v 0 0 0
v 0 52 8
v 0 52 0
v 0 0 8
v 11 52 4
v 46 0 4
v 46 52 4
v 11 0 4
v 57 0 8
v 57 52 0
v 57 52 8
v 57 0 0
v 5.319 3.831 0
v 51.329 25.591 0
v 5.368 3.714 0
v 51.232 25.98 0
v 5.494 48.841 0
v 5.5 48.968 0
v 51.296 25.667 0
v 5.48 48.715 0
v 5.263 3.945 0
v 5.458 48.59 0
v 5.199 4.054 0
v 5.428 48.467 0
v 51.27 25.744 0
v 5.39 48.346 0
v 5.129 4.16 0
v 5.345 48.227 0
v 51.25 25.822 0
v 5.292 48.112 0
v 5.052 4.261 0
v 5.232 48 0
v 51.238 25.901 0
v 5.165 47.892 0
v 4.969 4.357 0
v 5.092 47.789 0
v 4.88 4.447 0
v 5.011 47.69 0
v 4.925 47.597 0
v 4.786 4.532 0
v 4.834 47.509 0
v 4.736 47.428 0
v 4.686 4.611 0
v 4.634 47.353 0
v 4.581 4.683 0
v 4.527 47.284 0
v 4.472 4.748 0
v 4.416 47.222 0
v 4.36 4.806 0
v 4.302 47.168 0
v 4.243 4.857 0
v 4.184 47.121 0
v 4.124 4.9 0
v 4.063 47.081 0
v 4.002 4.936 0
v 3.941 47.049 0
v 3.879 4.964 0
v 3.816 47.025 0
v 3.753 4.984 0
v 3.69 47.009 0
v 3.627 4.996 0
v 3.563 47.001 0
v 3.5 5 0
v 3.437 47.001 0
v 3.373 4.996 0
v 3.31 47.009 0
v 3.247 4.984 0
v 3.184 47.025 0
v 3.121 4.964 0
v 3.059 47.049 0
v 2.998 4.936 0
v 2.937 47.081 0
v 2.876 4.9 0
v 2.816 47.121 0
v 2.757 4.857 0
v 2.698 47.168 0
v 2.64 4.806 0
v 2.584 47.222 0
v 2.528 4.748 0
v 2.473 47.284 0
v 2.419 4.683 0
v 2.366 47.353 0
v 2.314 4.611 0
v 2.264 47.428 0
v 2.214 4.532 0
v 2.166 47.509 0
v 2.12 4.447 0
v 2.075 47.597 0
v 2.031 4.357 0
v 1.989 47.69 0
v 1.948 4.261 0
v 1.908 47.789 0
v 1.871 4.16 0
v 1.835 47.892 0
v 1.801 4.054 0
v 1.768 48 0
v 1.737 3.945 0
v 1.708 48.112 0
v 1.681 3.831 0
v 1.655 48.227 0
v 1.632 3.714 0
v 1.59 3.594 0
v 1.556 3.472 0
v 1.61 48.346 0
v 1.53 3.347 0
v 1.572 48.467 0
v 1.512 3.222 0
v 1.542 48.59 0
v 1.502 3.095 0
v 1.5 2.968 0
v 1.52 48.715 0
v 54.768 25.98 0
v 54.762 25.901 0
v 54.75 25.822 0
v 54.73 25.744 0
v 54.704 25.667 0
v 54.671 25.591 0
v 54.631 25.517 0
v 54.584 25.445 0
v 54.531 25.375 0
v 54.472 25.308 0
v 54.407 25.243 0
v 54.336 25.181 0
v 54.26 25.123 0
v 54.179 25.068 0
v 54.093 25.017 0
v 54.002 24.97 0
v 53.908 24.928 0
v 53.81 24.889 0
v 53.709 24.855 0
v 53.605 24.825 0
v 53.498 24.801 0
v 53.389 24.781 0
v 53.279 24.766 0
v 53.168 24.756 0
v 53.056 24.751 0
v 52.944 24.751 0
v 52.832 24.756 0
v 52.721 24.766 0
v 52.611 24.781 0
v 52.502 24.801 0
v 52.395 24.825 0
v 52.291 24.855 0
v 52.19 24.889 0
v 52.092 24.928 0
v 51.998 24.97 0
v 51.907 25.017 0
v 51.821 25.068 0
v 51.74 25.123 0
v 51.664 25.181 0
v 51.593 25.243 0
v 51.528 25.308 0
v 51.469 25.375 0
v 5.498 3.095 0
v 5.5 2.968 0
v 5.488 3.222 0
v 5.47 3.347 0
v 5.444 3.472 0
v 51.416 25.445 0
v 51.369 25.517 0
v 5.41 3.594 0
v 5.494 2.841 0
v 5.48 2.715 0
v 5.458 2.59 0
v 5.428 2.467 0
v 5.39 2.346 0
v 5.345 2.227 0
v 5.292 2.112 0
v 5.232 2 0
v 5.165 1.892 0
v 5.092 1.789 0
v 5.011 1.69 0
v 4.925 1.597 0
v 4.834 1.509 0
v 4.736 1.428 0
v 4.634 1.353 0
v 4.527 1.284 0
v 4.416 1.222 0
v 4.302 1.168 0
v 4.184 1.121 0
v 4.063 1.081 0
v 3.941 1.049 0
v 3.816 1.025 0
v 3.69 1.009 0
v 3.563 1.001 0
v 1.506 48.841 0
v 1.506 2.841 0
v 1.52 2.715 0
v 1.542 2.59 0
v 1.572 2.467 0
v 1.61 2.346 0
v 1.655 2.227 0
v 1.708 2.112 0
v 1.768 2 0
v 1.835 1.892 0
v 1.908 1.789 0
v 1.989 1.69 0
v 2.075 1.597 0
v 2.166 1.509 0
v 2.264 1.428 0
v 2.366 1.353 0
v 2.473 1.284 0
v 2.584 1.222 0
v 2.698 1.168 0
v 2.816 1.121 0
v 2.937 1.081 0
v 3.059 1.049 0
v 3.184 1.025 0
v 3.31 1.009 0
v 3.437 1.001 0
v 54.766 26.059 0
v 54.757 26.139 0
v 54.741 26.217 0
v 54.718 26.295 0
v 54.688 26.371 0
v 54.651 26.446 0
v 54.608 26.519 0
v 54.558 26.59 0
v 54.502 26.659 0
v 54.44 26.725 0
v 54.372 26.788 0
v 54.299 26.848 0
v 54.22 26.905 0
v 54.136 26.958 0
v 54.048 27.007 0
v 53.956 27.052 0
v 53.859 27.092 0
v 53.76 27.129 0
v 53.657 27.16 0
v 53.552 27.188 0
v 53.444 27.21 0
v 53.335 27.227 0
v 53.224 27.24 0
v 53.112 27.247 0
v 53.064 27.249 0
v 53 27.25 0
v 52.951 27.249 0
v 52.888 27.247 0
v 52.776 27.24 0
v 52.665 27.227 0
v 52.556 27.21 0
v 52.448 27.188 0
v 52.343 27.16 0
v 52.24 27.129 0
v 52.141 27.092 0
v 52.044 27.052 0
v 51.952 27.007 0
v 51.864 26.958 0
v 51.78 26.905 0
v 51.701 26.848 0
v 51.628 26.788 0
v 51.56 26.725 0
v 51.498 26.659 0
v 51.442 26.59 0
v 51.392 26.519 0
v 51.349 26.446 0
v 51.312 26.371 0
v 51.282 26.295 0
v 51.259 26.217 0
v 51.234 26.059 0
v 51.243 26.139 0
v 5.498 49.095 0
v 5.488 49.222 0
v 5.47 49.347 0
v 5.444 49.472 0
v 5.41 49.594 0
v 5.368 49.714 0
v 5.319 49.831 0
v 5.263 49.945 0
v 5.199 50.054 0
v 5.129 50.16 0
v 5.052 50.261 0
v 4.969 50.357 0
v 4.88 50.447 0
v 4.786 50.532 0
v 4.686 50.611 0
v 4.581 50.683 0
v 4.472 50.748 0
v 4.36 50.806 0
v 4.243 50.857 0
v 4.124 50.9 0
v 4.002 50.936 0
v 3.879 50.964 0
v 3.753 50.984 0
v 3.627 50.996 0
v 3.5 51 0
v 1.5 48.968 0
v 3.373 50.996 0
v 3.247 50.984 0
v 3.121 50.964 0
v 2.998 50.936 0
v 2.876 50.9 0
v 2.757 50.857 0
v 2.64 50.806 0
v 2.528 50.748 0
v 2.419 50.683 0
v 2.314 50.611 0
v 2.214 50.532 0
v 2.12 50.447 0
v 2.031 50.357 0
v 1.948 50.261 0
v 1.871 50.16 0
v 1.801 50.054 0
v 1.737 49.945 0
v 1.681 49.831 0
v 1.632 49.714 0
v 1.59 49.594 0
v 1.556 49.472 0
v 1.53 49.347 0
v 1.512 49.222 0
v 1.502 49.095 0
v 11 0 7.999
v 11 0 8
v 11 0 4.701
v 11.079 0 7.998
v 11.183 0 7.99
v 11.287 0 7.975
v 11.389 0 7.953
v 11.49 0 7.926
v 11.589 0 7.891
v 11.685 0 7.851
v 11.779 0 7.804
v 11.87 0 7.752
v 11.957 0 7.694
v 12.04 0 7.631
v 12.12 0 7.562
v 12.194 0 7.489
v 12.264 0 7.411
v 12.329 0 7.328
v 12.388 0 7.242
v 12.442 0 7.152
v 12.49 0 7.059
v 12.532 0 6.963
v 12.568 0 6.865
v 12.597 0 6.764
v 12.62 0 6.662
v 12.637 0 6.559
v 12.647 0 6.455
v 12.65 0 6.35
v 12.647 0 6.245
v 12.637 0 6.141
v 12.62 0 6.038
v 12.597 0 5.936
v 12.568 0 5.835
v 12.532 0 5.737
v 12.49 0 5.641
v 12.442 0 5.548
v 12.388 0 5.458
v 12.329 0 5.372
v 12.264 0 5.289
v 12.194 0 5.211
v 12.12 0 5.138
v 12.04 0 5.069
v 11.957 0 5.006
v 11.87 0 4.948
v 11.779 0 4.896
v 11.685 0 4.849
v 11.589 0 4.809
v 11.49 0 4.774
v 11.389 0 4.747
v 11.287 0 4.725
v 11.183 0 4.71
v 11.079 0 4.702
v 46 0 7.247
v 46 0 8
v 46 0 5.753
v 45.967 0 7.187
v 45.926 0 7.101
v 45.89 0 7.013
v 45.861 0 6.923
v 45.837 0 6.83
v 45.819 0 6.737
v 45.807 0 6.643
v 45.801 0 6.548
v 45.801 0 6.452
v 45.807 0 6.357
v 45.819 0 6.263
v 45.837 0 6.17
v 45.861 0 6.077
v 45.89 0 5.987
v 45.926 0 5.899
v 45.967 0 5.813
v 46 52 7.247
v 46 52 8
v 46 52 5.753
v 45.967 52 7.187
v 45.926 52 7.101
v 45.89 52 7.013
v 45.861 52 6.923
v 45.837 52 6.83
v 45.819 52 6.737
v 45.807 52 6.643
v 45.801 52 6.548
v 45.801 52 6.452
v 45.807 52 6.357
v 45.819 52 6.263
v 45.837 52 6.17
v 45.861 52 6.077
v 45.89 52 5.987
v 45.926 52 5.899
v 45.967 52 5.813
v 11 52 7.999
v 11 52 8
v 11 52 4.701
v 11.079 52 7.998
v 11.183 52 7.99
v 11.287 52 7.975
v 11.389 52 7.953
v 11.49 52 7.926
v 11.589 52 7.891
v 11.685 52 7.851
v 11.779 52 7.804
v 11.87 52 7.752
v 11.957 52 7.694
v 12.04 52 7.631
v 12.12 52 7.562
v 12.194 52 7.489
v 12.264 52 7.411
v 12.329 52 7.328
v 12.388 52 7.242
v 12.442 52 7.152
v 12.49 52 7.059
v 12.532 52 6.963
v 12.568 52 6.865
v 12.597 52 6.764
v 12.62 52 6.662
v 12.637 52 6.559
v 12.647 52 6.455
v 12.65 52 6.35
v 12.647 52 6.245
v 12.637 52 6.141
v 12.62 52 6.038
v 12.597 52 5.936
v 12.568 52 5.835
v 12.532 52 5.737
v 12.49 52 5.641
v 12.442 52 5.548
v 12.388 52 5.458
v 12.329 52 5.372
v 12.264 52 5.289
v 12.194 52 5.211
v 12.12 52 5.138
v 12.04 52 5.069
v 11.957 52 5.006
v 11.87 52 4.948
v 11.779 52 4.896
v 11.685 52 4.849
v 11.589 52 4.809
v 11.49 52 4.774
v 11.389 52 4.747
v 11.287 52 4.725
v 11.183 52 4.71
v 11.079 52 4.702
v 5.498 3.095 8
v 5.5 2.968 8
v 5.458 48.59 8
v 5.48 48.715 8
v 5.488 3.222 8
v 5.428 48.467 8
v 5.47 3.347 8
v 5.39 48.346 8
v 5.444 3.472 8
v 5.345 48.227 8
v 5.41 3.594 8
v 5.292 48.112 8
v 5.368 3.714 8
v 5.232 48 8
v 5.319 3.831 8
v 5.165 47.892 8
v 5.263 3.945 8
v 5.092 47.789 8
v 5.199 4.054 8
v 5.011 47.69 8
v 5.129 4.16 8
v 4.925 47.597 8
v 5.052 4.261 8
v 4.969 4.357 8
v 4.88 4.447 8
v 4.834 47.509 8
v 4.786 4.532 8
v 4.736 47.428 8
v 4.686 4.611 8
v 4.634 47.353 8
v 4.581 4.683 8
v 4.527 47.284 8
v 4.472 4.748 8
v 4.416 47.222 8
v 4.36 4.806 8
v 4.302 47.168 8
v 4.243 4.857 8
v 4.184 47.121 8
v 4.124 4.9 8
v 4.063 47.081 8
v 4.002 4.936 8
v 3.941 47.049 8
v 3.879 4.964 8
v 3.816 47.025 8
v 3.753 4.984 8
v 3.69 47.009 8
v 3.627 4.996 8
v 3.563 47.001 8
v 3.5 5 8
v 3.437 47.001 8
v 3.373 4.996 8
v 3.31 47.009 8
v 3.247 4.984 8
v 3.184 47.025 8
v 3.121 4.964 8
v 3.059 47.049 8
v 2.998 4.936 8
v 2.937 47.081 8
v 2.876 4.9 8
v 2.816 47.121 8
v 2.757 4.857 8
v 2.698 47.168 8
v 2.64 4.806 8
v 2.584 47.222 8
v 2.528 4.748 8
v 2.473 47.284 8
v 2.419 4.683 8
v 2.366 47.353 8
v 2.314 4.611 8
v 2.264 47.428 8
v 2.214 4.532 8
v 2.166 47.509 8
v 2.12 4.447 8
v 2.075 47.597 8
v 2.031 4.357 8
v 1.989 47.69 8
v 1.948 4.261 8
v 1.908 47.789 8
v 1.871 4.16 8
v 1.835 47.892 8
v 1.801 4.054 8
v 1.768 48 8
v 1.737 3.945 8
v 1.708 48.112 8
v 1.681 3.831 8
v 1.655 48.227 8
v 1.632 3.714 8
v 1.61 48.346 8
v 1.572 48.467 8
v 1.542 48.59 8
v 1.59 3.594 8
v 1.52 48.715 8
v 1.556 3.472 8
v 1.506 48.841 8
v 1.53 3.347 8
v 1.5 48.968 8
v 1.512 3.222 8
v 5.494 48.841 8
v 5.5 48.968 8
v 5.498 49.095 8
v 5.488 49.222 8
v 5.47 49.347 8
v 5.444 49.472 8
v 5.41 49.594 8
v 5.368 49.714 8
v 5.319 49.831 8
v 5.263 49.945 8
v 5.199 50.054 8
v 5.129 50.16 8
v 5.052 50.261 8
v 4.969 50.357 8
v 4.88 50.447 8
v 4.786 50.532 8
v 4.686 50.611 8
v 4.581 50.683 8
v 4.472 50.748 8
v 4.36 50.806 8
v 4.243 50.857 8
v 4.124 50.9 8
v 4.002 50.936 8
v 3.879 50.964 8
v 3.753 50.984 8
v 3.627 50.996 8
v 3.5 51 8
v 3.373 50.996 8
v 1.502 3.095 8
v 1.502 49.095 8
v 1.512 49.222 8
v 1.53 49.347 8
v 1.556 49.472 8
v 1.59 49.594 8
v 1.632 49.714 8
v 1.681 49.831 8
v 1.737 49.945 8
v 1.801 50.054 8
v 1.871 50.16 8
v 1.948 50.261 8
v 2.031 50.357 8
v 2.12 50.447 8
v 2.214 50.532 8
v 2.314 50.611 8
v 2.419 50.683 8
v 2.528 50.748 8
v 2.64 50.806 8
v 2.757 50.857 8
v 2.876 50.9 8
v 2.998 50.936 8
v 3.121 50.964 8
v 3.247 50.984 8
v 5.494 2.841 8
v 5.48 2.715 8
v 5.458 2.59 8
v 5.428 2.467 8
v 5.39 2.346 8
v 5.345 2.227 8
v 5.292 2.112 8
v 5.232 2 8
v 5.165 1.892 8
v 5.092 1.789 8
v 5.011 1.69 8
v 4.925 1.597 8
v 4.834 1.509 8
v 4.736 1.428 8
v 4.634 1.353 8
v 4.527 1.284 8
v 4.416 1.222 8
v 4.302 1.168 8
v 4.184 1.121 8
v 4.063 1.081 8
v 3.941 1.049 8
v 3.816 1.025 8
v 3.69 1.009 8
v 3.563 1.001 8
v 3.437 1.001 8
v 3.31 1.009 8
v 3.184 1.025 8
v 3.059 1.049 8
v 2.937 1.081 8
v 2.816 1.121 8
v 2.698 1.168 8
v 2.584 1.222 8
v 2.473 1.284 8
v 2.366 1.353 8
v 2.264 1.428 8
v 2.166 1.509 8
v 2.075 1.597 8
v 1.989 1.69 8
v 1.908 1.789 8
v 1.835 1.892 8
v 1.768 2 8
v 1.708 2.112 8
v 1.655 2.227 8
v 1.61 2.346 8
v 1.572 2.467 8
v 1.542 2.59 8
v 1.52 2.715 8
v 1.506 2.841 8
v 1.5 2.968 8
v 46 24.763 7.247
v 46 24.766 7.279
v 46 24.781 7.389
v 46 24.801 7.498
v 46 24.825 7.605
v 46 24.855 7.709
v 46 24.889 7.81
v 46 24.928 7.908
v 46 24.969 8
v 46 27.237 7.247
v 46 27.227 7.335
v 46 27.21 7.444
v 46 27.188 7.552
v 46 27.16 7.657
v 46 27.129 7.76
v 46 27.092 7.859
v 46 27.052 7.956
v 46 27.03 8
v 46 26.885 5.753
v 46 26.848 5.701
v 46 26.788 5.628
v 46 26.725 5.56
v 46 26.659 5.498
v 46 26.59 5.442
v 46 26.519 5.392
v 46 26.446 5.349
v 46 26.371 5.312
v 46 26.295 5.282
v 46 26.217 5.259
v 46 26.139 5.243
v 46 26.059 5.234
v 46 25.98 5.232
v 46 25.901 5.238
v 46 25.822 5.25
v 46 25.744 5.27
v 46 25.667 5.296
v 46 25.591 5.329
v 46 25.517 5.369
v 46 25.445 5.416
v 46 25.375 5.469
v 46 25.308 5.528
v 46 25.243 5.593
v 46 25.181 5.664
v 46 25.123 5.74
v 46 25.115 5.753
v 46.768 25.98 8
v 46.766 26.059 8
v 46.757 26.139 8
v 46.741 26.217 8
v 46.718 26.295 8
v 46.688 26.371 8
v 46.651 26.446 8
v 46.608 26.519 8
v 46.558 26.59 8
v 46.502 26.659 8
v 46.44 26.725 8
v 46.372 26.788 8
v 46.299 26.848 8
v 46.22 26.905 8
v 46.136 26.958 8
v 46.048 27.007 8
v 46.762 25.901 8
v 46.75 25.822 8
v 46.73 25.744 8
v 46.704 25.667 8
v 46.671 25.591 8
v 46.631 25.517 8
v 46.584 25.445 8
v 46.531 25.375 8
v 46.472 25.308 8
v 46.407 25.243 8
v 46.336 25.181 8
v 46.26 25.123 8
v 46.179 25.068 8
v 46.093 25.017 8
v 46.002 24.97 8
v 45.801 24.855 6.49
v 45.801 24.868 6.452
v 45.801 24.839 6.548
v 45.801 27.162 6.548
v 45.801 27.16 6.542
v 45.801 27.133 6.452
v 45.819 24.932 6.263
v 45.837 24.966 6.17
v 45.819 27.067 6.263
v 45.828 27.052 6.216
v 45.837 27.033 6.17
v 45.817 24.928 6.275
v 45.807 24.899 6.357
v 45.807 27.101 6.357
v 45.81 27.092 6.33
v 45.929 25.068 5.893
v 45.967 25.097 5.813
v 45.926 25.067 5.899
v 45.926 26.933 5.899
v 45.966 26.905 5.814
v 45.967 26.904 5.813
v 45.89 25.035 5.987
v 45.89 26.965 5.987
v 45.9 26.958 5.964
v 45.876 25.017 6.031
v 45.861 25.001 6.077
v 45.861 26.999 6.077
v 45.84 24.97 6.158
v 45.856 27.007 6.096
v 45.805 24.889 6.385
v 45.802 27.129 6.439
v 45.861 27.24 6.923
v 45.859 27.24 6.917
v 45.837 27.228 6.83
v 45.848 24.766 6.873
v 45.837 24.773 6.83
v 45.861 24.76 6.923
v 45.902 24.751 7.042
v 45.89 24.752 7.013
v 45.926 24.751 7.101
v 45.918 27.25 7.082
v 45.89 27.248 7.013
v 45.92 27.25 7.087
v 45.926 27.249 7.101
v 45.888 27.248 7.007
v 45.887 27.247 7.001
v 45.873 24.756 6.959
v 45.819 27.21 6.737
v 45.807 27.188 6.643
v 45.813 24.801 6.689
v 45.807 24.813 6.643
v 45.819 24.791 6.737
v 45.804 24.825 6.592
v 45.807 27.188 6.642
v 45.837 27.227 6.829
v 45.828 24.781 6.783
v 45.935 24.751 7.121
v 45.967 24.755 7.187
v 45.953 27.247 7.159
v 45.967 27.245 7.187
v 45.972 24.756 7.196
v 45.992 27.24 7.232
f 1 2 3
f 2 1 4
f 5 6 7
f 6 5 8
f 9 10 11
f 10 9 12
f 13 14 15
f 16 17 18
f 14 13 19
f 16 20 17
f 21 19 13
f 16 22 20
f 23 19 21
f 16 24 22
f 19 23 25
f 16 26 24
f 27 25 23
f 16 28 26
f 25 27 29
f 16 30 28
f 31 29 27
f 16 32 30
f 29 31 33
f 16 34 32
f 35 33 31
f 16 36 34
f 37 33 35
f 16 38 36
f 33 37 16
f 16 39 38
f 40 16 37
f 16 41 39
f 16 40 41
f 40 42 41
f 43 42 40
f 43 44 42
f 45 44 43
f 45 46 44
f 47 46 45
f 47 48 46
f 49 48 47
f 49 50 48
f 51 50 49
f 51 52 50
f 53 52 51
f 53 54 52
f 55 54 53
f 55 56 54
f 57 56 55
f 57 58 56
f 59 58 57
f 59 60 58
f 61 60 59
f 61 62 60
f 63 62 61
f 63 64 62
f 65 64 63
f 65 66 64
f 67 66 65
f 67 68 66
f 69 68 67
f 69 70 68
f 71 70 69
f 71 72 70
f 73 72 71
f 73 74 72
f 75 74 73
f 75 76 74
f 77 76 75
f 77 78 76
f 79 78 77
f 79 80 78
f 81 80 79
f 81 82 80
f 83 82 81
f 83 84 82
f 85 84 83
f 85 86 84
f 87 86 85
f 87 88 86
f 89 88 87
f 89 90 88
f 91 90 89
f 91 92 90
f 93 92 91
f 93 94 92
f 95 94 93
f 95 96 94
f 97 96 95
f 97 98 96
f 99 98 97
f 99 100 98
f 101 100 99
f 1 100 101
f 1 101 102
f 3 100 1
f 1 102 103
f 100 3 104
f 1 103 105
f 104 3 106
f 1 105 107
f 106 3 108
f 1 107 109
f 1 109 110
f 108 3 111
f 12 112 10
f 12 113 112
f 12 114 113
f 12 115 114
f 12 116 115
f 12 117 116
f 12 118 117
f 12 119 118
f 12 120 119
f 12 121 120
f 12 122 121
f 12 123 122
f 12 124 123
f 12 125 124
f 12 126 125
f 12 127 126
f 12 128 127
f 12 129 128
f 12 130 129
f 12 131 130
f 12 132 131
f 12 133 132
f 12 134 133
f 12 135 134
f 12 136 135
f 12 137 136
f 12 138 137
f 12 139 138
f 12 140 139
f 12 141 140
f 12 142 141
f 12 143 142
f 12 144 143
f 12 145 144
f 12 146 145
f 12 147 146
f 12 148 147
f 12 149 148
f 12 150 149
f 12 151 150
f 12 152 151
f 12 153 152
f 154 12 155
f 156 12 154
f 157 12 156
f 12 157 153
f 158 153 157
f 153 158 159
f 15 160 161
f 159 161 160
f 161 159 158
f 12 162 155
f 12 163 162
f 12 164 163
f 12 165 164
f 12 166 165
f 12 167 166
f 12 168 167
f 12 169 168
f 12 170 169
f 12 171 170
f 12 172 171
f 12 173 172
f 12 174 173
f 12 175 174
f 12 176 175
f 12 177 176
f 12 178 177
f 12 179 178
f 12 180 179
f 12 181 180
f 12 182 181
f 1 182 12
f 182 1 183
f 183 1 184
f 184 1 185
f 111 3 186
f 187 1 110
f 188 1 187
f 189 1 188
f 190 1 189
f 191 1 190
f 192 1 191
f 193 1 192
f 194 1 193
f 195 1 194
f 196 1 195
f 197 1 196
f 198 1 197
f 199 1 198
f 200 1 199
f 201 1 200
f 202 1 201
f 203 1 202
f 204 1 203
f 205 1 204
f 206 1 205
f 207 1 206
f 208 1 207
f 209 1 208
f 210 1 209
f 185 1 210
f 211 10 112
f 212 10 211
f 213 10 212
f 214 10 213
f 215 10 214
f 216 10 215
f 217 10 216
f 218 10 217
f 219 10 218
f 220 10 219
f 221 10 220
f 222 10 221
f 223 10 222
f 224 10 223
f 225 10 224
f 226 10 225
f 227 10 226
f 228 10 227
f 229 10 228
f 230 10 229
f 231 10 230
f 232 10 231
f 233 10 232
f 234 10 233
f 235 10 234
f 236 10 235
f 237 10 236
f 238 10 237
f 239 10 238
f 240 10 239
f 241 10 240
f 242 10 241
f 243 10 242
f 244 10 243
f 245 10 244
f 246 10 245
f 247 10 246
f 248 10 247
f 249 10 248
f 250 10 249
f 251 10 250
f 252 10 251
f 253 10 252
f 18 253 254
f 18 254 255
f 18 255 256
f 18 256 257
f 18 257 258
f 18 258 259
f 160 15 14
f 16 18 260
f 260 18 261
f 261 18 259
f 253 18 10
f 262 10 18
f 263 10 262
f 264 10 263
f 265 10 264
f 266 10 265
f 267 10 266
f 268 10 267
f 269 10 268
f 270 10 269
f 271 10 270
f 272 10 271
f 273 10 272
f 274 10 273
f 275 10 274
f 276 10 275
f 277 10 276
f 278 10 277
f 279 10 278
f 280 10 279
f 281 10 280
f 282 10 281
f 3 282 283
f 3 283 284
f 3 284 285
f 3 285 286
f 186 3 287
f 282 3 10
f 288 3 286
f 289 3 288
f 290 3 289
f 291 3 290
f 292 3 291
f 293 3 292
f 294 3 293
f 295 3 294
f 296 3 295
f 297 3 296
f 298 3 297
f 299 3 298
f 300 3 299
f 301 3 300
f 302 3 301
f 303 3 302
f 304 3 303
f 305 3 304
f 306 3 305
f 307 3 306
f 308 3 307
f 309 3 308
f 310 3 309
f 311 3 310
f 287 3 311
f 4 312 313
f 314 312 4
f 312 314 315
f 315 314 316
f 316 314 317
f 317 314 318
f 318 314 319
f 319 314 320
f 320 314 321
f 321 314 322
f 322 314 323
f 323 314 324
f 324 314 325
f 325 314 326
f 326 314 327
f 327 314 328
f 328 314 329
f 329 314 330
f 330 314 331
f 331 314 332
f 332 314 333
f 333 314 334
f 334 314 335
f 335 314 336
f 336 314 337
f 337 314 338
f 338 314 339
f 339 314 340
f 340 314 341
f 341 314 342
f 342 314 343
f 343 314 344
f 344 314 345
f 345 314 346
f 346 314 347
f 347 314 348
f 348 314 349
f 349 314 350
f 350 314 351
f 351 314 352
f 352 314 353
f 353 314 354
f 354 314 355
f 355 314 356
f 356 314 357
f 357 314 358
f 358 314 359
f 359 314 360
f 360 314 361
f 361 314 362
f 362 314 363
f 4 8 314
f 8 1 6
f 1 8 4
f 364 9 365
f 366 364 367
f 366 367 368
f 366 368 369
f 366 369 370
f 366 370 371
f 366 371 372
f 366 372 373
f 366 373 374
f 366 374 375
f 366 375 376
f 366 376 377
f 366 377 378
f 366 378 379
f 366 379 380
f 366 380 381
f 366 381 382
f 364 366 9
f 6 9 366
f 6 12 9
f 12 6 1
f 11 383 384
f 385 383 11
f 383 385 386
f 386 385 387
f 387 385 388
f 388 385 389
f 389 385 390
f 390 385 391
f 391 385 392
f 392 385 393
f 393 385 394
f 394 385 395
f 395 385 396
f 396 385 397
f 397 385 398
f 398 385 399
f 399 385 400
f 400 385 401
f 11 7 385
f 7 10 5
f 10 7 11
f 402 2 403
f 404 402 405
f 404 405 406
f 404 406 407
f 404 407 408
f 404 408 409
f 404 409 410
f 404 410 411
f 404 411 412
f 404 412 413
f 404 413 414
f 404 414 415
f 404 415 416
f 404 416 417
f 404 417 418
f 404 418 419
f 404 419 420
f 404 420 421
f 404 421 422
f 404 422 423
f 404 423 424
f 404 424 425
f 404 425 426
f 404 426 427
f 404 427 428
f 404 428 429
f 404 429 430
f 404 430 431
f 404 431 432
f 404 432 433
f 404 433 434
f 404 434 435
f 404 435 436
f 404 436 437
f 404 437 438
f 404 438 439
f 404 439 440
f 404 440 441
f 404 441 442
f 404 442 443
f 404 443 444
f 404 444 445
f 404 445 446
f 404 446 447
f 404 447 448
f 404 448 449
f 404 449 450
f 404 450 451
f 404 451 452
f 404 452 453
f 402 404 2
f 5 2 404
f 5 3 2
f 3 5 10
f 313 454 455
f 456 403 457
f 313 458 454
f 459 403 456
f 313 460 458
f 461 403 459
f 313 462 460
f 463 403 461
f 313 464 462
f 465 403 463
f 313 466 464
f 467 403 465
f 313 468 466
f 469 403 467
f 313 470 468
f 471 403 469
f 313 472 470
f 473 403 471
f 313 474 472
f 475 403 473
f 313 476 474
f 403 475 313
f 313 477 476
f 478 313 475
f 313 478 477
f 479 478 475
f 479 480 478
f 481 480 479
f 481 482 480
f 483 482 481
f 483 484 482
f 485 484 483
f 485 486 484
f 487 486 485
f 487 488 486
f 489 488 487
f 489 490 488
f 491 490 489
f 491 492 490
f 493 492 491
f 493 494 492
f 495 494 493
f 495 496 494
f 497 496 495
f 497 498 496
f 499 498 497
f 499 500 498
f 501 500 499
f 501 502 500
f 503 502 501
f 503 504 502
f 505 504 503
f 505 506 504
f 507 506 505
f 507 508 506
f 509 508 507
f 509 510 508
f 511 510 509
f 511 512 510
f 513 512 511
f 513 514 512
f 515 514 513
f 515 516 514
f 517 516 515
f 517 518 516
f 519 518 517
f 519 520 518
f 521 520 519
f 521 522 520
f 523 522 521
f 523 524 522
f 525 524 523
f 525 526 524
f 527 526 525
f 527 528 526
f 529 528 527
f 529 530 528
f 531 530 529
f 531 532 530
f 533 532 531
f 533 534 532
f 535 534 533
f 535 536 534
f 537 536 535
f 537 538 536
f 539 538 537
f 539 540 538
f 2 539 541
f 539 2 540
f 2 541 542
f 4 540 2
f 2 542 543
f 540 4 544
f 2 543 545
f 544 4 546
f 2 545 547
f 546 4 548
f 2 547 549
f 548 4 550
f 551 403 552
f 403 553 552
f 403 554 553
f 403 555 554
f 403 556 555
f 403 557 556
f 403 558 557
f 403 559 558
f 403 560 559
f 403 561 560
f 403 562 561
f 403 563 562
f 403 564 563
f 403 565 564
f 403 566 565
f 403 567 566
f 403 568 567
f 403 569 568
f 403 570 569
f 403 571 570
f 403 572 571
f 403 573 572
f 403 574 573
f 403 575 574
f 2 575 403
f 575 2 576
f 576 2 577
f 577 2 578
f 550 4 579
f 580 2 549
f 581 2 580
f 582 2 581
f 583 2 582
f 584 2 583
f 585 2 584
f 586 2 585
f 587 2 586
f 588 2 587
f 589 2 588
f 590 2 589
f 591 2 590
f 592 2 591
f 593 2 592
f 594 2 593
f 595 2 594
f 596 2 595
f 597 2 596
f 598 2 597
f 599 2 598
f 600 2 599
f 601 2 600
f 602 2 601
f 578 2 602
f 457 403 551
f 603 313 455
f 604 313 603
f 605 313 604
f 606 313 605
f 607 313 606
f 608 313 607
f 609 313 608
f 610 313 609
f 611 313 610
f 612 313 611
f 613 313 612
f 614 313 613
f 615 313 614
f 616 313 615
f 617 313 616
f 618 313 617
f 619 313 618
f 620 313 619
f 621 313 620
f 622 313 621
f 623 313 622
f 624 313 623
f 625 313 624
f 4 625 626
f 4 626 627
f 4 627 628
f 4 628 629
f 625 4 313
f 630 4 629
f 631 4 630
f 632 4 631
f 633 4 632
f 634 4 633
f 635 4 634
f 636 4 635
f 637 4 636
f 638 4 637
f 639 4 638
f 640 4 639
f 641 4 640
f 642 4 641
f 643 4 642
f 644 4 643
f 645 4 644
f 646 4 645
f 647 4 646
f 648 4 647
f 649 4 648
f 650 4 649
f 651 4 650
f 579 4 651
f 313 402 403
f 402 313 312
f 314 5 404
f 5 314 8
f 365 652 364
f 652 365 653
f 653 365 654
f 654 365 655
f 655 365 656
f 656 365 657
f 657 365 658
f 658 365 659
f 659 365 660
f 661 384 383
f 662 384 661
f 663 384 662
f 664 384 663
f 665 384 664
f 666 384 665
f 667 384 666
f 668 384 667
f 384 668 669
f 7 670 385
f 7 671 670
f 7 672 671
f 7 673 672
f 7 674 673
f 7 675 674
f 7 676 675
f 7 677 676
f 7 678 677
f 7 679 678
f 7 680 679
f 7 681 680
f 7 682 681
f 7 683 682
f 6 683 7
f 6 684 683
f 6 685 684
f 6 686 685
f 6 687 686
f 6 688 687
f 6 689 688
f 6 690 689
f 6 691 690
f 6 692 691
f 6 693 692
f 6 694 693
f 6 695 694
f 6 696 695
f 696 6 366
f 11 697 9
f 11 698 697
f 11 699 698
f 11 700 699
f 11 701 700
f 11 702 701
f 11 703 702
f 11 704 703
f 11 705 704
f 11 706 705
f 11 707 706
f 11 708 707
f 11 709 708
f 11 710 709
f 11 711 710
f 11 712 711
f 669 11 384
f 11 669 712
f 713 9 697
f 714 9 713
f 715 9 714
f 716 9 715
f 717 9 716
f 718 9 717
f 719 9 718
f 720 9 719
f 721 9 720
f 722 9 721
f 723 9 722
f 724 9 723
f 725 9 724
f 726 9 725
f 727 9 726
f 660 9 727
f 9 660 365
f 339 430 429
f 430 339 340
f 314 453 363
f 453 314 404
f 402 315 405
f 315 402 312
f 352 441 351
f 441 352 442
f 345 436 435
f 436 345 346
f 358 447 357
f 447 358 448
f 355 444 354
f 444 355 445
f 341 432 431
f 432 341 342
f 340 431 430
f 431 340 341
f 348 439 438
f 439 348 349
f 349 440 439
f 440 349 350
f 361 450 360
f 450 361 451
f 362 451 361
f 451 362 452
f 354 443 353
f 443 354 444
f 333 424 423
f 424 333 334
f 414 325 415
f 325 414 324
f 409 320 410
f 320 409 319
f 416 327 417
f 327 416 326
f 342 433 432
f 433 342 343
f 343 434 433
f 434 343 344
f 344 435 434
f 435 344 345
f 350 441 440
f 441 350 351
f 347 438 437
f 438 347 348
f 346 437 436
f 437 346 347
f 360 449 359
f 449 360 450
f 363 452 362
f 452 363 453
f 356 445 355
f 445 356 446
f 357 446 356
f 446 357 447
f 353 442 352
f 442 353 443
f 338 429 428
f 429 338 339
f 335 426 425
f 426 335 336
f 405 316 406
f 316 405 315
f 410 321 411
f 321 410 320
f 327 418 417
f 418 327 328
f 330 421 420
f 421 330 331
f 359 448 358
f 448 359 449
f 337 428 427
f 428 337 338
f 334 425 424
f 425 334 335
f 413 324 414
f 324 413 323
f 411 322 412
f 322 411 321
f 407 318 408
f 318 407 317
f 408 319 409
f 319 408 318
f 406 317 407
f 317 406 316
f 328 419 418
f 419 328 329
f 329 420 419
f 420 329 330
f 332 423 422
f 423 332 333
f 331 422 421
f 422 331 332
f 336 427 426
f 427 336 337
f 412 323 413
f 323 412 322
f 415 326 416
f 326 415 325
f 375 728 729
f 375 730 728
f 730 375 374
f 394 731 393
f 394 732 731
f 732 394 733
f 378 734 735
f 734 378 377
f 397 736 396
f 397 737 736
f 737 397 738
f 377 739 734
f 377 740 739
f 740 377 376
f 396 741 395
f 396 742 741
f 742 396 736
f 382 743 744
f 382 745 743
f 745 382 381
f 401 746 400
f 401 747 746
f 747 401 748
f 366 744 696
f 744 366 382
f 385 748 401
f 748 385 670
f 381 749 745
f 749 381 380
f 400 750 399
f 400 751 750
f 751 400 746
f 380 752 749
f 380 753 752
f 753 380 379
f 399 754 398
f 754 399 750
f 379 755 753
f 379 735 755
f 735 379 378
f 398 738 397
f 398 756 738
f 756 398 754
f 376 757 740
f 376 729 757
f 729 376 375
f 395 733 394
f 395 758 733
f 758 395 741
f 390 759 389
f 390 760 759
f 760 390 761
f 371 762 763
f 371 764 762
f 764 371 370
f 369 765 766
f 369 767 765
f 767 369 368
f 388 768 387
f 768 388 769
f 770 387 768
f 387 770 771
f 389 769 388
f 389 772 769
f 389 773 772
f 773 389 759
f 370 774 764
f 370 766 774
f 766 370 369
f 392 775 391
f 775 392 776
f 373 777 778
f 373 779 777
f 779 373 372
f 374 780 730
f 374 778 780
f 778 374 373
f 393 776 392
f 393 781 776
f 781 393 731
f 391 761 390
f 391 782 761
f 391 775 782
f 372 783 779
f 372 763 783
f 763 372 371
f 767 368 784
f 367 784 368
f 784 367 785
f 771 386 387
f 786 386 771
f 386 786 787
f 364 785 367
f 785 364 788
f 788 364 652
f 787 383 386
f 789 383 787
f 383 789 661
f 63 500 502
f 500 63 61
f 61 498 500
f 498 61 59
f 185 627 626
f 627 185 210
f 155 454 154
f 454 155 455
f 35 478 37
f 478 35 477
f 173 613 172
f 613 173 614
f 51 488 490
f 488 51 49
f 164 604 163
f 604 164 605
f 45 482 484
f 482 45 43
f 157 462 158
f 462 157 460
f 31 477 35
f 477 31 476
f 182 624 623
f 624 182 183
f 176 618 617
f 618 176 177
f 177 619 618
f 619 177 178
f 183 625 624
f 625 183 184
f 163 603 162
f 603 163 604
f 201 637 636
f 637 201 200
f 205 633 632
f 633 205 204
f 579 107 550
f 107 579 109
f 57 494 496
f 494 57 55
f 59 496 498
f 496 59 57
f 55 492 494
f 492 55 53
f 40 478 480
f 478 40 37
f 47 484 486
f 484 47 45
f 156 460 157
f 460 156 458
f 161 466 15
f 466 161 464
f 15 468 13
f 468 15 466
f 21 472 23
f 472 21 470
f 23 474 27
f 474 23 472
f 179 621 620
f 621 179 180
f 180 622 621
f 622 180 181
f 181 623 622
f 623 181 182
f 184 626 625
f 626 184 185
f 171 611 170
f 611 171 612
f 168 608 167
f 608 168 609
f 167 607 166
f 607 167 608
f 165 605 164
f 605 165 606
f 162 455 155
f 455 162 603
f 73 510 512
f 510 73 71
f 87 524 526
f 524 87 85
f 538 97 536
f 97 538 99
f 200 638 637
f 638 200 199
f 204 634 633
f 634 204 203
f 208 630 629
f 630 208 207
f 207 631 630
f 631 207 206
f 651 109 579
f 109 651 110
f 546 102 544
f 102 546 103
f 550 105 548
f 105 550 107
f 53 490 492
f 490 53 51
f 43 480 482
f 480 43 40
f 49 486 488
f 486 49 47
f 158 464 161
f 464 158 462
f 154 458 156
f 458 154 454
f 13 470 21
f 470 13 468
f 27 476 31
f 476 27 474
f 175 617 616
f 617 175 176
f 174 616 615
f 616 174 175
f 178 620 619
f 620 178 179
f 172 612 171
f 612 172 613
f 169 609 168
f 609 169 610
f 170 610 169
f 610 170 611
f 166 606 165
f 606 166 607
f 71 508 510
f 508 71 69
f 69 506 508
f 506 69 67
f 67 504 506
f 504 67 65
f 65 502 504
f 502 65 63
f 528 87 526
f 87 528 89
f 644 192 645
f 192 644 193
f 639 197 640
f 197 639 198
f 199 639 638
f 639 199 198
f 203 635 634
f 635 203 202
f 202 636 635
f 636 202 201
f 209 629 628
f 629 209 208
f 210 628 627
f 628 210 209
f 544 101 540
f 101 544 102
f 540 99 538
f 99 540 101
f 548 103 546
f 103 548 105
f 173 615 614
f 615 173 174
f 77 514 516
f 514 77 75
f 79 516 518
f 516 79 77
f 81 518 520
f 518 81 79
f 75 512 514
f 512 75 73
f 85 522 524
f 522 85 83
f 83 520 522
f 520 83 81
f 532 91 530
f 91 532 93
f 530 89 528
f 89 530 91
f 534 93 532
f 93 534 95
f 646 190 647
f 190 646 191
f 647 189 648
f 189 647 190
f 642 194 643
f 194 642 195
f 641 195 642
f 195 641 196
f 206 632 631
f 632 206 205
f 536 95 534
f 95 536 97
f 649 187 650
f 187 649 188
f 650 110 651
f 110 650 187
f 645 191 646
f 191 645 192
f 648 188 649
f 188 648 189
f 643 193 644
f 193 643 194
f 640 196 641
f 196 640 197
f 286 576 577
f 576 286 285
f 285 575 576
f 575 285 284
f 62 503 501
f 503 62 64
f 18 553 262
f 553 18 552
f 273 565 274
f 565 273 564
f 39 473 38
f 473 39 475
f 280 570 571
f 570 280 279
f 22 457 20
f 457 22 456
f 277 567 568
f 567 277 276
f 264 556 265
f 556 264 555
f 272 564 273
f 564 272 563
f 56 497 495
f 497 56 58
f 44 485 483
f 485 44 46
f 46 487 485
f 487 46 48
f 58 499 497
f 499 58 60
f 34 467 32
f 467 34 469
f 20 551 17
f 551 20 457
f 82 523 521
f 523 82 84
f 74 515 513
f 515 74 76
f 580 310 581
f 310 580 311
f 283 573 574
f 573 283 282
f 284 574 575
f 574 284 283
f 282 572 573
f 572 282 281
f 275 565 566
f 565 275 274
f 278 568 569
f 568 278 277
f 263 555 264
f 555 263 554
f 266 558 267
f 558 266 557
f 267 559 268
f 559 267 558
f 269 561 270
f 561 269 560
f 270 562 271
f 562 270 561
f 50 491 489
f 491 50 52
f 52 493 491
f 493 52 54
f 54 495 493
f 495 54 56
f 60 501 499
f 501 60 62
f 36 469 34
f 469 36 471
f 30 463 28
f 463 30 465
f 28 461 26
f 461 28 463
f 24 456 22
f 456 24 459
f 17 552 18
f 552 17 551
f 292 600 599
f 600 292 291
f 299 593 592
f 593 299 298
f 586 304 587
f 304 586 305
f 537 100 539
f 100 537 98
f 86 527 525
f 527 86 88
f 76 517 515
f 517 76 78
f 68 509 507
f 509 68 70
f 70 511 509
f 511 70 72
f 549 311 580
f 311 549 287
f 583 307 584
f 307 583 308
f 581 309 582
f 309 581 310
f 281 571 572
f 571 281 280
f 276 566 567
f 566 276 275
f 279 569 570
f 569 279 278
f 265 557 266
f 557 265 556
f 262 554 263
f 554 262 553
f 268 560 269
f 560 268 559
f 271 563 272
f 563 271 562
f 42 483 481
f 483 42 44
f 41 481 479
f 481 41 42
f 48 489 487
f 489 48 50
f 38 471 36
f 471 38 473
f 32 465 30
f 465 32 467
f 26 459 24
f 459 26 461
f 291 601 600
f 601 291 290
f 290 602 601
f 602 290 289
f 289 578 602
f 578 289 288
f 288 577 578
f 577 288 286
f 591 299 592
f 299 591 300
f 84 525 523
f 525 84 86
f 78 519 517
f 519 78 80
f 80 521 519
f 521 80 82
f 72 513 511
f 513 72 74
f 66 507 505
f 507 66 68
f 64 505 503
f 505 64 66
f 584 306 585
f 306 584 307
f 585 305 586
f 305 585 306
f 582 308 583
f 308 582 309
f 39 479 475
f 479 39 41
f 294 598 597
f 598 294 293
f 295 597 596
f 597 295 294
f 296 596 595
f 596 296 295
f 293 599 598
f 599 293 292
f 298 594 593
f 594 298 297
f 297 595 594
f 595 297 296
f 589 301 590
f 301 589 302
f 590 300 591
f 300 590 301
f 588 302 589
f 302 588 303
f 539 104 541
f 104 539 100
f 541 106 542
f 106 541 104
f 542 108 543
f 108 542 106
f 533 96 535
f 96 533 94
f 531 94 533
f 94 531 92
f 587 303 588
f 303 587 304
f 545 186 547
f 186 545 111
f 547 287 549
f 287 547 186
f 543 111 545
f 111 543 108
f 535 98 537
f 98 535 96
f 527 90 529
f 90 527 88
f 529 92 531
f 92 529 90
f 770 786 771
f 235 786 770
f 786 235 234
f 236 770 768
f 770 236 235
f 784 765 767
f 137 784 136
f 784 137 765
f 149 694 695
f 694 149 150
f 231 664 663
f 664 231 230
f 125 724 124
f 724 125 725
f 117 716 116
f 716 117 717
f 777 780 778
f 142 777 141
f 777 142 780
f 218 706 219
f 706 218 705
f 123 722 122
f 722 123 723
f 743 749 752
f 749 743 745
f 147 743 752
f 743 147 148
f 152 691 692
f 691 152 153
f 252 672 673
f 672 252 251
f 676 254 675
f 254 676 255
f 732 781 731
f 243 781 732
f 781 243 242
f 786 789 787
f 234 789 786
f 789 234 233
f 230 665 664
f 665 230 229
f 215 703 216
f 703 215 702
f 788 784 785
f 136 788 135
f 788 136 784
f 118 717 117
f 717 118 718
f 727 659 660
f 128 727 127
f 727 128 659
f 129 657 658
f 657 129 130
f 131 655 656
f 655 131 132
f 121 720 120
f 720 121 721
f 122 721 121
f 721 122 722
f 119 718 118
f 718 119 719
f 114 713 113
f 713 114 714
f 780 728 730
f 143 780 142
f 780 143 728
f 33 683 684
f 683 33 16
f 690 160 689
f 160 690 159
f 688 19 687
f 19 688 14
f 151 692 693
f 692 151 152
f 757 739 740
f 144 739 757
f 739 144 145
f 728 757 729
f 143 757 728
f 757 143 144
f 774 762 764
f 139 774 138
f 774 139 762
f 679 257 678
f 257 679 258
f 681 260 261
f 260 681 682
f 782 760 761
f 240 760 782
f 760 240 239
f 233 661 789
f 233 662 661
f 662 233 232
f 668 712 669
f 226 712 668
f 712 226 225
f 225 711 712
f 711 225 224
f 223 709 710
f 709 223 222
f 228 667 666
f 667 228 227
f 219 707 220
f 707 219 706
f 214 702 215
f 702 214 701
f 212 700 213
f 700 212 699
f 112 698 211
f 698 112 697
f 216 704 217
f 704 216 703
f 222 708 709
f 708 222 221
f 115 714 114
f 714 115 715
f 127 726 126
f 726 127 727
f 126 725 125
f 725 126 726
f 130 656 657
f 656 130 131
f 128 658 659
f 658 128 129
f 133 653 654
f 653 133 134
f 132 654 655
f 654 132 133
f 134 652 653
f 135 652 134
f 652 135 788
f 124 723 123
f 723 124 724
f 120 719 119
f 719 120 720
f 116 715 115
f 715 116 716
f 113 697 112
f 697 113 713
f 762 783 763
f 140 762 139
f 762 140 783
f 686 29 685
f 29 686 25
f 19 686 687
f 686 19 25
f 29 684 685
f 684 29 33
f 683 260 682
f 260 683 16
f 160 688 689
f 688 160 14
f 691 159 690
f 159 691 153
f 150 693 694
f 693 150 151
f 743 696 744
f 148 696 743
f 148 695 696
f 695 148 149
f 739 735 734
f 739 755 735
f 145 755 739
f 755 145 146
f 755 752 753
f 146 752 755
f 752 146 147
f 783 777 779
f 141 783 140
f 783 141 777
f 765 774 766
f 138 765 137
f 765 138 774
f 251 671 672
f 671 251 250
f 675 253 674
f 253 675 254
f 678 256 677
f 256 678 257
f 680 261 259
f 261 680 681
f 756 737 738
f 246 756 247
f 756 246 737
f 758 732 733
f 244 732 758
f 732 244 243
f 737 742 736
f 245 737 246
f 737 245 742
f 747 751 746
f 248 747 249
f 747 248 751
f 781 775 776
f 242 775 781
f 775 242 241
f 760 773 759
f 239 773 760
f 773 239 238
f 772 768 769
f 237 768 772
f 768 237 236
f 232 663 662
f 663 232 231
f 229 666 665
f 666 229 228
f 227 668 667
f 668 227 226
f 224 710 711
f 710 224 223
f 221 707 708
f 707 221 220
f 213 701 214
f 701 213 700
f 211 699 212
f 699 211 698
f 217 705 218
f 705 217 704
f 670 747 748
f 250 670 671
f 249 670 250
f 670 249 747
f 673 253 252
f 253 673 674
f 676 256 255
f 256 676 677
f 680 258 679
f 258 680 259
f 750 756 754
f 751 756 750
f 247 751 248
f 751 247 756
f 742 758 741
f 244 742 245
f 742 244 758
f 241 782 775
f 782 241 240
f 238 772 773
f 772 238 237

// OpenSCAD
width = 52;
$fn = 99;
length = 57;

difference() {
  union() {
    cube([length, width, 4], false);
    cube([11, width, 8], false);
    translate([length - 11, 0, 0]) {
      cube([11, width, 8], false);
    }

    translate([11, 0, 6.35]) {
      rotate([270, 0, 0]) {
        cylinder(width, 1.65, 1.65, false);
      }
    }

    translate([length - 11 + 1.3, 0, 6.5]) {
      rotate([270, 0, 0]) {
        cylinder(width, 1.5, 1.5, false);
      }
    }
  }

  // drill holes for the screws
  translate([0, -4, 1]) {
    rotate([90, 00, 90]) {
      translate([7, 8, 3.5]) {
        rotate([90, 0, 0]) {
          cylinder(h=10, d=4, center=false){}
        }
      }

      translate([60 - 7, 8, 3.5]) {
        rotate([90, 0, 0]) {
          cylinder(h=10, d=4, center=false){}
        }
      }
    }
  }

      translate([45, 26, 8]) {
        rotate([45 + 90, 0,90]) {
          cylinder(h=20, d=2.5, center=false){}
        }
      }

}
